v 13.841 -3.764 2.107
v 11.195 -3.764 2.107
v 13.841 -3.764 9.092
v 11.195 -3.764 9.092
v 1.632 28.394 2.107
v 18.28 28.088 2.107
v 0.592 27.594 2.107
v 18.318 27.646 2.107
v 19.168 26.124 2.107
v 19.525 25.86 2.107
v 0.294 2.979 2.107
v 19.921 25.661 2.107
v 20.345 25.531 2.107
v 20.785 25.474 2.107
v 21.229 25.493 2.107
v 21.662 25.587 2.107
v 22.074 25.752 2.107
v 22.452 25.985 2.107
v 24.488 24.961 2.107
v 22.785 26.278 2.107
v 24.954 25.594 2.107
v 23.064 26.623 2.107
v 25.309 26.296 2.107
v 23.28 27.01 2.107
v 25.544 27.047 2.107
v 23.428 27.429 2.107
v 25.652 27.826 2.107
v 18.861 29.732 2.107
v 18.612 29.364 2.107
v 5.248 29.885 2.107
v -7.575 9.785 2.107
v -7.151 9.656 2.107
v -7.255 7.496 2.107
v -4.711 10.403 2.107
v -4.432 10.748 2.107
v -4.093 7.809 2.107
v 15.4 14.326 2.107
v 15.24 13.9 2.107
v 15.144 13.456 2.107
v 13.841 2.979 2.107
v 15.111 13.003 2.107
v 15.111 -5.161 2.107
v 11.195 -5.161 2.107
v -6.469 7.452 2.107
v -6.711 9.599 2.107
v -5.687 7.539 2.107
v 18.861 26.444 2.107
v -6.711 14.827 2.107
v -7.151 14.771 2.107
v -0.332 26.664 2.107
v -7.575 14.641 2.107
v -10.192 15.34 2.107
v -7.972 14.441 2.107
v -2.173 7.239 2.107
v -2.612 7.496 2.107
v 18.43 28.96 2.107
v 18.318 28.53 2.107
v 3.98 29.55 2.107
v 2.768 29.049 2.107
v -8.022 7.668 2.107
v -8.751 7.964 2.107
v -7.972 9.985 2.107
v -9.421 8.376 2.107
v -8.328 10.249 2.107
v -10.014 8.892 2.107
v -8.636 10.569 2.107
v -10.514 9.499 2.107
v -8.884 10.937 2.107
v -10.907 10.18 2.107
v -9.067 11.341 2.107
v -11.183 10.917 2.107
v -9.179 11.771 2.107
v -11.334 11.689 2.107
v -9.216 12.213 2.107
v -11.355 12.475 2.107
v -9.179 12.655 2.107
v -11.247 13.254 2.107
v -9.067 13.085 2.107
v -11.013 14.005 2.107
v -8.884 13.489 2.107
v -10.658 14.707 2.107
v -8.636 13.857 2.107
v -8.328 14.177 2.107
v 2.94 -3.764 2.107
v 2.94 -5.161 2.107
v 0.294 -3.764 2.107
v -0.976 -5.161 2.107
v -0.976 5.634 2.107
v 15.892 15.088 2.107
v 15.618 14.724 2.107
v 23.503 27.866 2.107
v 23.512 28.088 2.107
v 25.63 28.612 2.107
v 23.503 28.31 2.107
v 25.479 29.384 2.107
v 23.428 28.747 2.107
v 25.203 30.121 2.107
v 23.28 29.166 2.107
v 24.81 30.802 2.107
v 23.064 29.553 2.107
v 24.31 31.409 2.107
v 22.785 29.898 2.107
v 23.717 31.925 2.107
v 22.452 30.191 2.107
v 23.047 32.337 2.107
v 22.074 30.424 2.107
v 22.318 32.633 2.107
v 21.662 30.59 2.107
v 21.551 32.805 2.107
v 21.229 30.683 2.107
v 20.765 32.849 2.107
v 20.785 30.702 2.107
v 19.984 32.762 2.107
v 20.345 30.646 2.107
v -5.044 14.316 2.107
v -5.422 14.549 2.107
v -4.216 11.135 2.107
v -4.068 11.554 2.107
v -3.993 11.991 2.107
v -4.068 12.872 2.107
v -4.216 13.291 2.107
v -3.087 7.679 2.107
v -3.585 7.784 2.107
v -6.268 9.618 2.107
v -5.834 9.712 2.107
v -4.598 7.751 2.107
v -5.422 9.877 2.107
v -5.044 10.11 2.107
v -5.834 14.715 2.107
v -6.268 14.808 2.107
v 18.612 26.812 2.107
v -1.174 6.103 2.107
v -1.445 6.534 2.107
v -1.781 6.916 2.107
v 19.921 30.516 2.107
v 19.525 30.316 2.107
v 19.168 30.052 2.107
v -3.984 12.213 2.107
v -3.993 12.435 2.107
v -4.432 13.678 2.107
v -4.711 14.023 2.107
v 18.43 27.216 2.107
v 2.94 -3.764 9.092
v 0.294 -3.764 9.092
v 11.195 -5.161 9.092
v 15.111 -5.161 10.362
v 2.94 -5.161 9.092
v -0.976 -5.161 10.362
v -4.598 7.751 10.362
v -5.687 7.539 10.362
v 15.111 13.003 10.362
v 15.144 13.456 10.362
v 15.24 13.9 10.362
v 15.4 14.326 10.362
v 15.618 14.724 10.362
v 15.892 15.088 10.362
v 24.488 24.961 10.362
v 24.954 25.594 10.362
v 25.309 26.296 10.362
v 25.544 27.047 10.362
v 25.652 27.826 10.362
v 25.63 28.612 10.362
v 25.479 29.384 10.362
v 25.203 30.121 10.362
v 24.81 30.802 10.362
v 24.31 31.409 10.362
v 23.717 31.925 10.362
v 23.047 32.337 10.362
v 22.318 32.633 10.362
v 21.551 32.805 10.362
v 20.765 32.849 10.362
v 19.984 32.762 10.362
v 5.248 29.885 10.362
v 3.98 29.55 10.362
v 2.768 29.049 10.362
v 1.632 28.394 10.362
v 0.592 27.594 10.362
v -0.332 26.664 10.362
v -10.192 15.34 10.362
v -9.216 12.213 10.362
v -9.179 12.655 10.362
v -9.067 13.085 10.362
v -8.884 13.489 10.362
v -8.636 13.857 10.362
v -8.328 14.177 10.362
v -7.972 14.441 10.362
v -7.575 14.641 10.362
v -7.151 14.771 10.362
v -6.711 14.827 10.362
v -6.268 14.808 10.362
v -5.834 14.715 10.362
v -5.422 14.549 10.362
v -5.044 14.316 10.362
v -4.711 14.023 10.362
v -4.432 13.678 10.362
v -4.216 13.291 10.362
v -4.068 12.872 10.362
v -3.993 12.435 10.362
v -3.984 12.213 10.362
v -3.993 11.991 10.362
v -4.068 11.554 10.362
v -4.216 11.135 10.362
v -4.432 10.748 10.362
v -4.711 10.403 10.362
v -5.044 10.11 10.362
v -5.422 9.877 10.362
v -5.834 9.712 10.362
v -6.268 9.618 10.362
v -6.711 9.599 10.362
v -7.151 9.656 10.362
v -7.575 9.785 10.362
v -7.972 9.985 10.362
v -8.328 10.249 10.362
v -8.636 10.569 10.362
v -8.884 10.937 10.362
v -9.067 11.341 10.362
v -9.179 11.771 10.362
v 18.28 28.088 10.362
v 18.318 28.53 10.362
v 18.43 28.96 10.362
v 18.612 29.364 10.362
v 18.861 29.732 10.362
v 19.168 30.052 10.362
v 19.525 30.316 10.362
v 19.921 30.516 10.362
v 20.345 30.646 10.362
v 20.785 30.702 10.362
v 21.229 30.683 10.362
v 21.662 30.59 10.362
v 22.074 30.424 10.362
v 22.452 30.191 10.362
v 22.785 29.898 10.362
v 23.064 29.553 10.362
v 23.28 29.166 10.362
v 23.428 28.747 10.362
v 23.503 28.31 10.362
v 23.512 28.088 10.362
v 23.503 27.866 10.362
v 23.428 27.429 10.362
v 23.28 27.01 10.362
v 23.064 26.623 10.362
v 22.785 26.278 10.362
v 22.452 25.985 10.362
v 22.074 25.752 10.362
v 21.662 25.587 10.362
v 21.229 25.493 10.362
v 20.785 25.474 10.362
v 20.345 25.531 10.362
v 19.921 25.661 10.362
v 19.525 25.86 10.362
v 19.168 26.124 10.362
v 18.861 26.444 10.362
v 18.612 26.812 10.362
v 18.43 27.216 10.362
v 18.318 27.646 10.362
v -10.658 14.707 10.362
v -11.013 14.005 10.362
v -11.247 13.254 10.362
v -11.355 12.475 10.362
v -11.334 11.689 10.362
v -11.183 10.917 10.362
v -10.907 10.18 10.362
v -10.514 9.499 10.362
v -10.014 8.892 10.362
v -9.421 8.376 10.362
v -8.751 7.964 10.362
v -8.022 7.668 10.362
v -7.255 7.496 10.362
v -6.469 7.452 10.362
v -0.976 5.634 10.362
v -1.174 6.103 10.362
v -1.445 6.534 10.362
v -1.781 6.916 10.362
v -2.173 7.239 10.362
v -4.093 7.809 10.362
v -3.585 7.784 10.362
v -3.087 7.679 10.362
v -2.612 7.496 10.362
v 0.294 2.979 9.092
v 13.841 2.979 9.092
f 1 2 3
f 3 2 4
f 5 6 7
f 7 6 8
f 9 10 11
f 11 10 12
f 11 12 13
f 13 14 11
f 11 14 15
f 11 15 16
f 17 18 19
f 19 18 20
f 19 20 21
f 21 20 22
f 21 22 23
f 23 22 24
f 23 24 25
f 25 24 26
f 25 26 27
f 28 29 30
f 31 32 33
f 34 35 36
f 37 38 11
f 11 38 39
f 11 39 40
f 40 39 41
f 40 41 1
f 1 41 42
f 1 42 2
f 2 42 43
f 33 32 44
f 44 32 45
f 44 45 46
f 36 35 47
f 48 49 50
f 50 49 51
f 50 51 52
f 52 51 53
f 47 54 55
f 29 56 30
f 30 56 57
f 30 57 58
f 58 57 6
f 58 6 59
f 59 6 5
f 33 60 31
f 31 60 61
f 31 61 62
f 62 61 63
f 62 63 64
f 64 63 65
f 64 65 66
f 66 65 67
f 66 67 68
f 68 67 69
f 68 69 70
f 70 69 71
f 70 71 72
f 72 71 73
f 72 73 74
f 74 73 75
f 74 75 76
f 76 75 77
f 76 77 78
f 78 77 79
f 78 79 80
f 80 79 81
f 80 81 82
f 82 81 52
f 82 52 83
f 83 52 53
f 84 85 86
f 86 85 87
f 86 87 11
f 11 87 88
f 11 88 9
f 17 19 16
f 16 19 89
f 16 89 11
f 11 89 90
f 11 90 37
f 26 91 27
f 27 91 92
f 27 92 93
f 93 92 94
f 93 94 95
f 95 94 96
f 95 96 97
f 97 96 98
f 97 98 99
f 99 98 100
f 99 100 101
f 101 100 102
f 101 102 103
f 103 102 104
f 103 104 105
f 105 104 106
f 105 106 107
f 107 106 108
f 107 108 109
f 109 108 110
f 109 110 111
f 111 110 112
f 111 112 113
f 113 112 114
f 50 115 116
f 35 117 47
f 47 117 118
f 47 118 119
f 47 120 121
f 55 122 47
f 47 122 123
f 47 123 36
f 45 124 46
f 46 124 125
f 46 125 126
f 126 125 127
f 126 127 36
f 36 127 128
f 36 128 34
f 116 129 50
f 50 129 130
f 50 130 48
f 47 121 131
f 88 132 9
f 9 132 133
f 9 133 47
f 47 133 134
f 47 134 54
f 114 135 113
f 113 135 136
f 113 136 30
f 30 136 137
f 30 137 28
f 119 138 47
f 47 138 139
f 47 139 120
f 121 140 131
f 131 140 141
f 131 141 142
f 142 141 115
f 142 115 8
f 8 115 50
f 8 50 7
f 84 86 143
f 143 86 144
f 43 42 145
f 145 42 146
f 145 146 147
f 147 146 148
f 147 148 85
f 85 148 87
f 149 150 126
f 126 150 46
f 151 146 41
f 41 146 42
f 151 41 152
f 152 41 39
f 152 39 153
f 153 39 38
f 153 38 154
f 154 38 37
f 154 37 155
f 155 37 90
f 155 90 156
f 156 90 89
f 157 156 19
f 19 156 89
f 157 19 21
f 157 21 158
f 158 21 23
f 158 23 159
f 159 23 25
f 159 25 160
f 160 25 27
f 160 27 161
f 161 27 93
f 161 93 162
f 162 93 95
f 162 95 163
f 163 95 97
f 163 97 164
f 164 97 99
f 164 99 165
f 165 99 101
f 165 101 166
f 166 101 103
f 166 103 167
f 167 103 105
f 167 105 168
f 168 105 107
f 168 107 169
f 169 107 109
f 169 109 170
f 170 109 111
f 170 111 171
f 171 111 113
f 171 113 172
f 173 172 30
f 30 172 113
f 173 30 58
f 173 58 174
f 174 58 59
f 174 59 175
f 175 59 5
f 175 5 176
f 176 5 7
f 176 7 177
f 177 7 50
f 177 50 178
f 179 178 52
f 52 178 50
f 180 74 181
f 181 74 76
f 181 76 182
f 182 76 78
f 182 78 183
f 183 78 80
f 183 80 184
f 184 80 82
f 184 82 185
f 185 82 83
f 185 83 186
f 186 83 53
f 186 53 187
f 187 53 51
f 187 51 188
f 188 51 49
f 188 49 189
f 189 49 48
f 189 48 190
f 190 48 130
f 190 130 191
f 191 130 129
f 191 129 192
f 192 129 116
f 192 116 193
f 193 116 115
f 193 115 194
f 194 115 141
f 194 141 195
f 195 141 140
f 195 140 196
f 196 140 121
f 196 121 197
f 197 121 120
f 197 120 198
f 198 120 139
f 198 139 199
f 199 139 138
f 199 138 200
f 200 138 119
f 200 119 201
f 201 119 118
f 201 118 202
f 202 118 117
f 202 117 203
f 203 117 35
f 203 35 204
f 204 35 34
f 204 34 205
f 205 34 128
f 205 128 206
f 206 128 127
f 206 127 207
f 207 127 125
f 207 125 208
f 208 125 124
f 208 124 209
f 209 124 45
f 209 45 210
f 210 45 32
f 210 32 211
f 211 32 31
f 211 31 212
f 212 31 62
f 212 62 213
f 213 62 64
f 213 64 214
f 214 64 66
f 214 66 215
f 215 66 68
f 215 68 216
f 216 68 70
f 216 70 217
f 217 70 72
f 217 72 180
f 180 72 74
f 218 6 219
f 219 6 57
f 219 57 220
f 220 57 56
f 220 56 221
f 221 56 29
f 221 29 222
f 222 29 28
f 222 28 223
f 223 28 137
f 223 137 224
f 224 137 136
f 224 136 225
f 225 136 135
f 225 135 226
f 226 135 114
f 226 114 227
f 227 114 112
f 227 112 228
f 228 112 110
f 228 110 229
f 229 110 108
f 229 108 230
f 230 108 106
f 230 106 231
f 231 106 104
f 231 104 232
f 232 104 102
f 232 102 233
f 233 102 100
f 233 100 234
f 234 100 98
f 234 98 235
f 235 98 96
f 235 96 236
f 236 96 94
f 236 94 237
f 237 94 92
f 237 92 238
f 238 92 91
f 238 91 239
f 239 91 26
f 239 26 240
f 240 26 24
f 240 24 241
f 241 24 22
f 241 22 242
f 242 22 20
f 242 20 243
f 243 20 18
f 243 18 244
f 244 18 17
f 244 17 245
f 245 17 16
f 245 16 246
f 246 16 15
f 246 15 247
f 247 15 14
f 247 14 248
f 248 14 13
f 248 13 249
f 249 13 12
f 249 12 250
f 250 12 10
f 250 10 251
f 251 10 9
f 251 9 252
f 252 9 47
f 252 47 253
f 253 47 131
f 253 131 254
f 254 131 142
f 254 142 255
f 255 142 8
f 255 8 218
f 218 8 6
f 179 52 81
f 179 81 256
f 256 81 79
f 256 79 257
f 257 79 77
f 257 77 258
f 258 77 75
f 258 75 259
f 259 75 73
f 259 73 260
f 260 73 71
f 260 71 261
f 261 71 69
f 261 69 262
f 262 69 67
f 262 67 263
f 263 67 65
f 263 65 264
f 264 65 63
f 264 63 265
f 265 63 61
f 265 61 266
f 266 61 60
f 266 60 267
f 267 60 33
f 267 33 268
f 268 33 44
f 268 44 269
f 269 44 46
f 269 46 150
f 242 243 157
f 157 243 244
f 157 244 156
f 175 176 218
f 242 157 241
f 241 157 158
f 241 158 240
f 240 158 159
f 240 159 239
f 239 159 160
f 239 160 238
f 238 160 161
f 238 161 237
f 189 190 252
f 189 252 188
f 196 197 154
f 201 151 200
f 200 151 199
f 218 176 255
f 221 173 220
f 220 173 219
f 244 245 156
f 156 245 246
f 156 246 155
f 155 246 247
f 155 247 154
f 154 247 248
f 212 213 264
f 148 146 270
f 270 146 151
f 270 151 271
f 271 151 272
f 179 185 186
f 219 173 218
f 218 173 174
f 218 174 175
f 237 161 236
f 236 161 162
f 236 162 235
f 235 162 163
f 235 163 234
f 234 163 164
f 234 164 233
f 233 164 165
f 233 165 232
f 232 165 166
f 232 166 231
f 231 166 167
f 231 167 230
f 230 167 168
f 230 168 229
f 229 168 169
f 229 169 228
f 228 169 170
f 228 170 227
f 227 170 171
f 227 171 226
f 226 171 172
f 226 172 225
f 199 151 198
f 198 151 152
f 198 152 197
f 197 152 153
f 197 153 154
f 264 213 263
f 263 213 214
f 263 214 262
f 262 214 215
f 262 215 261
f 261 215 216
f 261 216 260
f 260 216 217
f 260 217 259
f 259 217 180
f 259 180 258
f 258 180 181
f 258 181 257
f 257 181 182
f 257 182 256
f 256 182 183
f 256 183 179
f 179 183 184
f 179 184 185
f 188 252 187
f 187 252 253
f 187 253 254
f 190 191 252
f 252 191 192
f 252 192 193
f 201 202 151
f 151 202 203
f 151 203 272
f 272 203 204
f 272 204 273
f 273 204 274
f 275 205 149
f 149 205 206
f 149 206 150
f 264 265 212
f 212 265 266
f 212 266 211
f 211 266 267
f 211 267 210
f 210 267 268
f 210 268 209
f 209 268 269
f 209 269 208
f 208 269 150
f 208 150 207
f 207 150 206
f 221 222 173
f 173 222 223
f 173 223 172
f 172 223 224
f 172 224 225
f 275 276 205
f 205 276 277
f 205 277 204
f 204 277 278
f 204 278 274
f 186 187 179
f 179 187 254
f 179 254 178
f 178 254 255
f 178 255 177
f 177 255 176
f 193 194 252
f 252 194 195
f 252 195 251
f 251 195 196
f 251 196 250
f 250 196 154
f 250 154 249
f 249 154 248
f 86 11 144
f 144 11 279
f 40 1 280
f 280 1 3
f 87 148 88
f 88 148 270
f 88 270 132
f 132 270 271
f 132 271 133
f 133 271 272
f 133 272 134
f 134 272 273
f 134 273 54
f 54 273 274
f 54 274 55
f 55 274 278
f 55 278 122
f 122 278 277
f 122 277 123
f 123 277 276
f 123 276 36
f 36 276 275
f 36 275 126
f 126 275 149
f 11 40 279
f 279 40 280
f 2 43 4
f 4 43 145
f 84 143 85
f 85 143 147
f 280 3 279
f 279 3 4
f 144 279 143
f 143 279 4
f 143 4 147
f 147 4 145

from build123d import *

# Parameters (mm, degrees)
SKETCH1_R               = 2.6162
BOSS_EXTRUDE1_DEPTH     = 8.255
BOSS_EXTRUDE2_START     = -8.255
BOSS_EXTRUDE2_DEPTH     = 8.255
CUT_EXTRUDE1_DEPTH      = 48.016961983
CUT_EXTRUDE1_DEPTH_BACK = 1.397
SKETCH3_W               = 8.255
SKETCH3_H               = 6.985
BOSS_EXTRUDE3_DEPTH     = 1.27


with BuildPart() as part:
    # Sketch1 → Boss-Extrude1 (new body)
    with BuildSketch(Plane.XY.offset(2.107322193)):
        with BuildLine():
            Line((-0.976083412, 8.428441548), (0.293916588, 8.428441851))
            Line((0.293916588, 8.428441851), (0.293916229, 9.932994282))
            ThreePointArc((0.293916229, 9.932994282), (-0.000418872, 12.651350758), (-0.869779891, 15.243706156))
            Line((-0.869779891, 15.243706156), (-0.976085093, 15.474629701))
            ThreePointArc((-0.976085093, 15.474629701), (6.540220685, 27.79826422), (15.111028831, 16.183270977))
            Line((15.111028831, 16.183270977), (14.582439814, 14.704895001))
            ThreePointArc((14.582439814, 14.704895001), (14.027755034, 12.598915738), (13.841030203, 10.42913287))
            Line((13.841030203, 10.42913287), (13.84103068, 8.428445081))
            Line((13.84103068, 8.428445081), (15.11103068, 8.428445384))
            Line((15.11103068, 8.428445384), (15.111029589, 13.002746336))
            ThreePointArc((15.111029589, 13.002746336), (15.312546971, 14.115862595), (15.891518981, 15.087679694))
            Line((15.891518981, 15.087679694), (24.488045189, 24.960647863))
            ThreePointArc((24.488045189, 24.960647863), (25.020724695, 30.469297747), (19.983753108, 32.762306303))
            Line((19.983753108, 32.762306303), (5.247640051, 29.885468019))
            ThreePointArc((5.247640051, 29.885468019), (2.188775836, 28.740388475), (-0.332323255, 26.663872928))
            Line((-0.332323255, 26.663872928), (-10.19178942, 15.340439107))
            ThreePointArc((-10.19178942, 15.340439107), (-10.724468925, 9.831789223), (-5.687497339, 7.538780667))
            Line((-5.687497339, 7.538780667), (-4.598119195, 7.751453082))
            ThreePointArc((-4.598119195, 7.751453082), (-2.818463394, 8.257741333), (-0.976083412, 8.428441548))
        make_face()
        with Locations((-6.600023508, 12.213040207)):
            Circle(SKETCH1_R, mode=Mode.SUBTRACT)
        with Locations((20.896279277, 28.088046763)):
            Circle(SKETCH1_R, mode=Mode.SUBTRACT)
    extrude(amount=BOSS_EXTRUDE1_DEPTH)

    # Sketch2 → Boss-Extrude2 (add)
    with BuildSketch(Plane.XY.offset(10.362322193).offset(BOSS_EXTRUDE2_START)):
        with BuildLine():
            Line((0.293916229, 9.932991253), (0.293916588, 8.428441851))
            Line((0.293916588, 8.428441851), (-0.976083412, 8.428441548))
            ThreePointArc((-0.976083412, 8.428441548), (-2.818463394, 8.257741333), (-4.598119195, 7.751453082))
            ThreePointArc((-4.598119195, 7.751453082), (-2.387631267, 7.376407845), (-0.976082746, 5.634441548))
            Line((-0.976082746, 5.634441548), (-0.976080172, -5.160558452))
            Line((-0.976080172, -5.160558452), (15.11103392, -5.160554616))
            Line((15.11103392, -5.160554616), (15.11103068, 8.428445384))
            Line((15.11103068, 8.428445384), (13.84103068, 8.428445081))
            Line((13.84103068, 8.428445081), (13.841030203, 10.42913287))
            ThreePointArc((13.841030203, 10.42913287), (14.027755034, 12.598915738), (14.582439814, 14.704895001))
            Line((14.582439814, 14.704895001), (15.111028831, 16.183270977))
            ThreePointArc((15.111028831, 16.183270977), (6.540220685, 27.79826422), (-0.976085093, 15.474629701))
            Line((-0.976085093, 15.474629701), (-0.869779891, 15.243706156))
            ThreePointArc((-0.869779891, 15.243706156), (-0.000418548, 12.651349279), (0.293916229, 9.932991253))
        make_face()
        Polygon((0.293917905, 2.903941851), (0.293916588, 2.979402319), (13.841031997, 2.979402319), (13.841031997, 2.903945081), (13.841033587, -3.763554919), (0.293919495, -3.763558149), align=None, mode=Mode.SUBTRACT)
    extrude(amount=BOSS_EXTRUDE2_DEPTH)

    # Sketch3 → Cut-Extrude1 (cut, two sides: drawn at the far end of the back side and taken through both)
    with BuildSketch(Plane(origin=(1.231e-06, -5.160558219, 0), x_dir=(0.9999999999999716, 2.3845959458266363e-07, 0), z_dir=(2.3845959458266363e-07, -0.9999999999999716, 0)).offset(-CUT_EXTRUDE1_DEPTH_BACK)):
        with Locations((7.067475644, 5.599822193)):
            Rectangle(SKETCH3_W, SKETCH3_H)
    extrude(amount=CUT_EXTRUDE1_DEPTH + CUT_EXTRUDE1_DEPTH_BACK, mode=Mode.SUBTRACT)

    # Sketch4 → Boss-Extrude3 (add)
    with BuildSketch(Plane.XY.offset(10.362322193)):
        Polygon((13.841031997, 2.903945081), (13.841031997, 2.979402319), (0.293916588, 2.979402319), (0.293917905, 2.903941851), (0.293919495, -3.763558149), (13.841033587, -3.763554919), align=None)
    extrude(amount=-BOSS_EXTRUDE3_DEPTH)


solid = part.part
